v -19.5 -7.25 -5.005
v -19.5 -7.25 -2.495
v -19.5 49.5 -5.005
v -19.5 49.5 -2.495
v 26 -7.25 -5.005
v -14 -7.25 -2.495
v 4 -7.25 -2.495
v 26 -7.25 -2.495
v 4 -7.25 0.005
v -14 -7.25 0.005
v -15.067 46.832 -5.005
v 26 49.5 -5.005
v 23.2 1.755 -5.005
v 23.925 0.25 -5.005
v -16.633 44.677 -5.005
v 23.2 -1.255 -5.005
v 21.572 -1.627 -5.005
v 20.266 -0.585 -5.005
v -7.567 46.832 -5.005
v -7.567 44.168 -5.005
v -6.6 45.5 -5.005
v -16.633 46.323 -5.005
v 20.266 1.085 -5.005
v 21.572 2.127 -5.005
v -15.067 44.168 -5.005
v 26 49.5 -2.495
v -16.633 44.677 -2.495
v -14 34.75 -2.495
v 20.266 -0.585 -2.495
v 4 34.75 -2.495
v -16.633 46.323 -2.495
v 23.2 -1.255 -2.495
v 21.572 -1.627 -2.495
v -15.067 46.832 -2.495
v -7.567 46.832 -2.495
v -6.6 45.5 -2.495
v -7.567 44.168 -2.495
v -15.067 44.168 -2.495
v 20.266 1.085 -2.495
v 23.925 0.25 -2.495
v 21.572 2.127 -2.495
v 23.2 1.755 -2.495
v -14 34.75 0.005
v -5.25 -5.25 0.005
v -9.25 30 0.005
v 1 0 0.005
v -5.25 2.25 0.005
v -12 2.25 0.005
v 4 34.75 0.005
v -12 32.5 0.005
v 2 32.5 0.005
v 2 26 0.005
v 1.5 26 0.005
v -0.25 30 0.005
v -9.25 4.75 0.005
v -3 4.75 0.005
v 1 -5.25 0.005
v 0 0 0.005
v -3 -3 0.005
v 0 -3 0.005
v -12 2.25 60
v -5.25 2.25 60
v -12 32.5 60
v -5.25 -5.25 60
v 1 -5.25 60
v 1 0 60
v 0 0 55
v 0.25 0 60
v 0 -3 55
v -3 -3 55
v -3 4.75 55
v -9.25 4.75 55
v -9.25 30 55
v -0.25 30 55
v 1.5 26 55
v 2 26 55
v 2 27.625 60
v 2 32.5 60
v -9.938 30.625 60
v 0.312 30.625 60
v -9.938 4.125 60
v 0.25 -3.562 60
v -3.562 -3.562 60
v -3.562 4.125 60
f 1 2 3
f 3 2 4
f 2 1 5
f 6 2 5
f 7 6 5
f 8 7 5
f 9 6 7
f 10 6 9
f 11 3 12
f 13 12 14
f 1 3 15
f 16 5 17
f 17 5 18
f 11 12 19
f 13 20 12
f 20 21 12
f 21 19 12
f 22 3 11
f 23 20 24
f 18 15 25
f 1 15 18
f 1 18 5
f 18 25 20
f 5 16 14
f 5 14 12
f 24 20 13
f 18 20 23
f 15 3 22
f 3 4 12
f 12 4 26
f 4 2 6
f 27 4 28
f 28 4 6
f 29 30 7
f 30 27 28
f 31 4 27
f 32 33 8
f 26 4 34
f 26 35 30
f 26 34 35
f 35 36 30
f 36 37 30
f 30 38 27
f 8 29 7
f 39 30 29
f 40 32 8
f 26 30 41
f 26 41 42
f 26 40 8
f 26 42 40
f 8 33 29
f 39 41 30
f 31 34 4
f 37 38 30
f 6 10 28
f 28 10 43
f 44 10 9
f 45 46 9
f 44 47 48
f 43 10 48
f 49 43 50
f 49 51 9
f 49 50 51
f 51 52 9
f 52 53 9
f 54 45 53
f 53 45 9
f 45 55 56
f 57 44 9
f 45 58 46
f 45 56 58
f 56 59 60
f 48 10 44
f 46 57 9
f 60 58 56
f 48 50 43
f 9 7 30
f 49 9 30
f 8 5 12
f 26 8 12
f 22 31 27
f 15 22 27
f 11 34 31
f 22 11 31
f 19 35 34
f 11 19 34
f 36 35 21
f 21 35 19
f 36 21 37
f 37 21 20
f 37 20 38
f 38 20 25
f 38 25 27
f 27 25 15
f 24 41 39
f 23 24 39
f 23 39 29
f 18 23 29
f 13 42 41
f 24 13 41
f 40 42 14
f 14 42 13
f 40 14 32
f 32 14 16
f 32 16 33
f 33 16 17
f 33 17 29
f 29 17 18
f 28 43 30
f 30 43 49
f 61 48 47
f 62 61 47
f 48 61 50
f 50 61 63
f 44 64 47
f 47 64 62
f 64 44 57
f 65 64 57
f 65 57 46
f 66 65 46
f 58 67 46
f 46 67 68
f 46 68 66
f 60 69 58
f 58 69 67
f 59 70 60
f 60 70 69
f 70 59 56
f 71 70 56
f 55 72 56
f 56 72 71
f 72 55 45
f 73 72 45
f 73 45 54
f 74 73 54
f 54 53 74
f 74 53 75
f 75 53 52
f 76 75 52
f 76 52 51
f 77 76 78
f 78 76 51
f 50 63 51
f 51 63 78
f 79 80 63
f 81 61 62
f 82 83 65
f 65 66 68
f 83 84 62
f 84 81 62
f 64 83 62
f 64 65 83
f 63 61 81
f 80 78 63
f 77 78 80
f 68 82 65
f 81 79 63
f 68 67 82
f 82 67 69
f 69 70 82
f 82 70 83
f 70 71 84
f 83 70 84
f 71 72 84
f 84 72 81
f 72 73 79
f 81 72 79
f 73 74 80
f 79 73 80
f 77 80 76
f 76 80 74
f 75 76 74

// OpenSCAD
module railbase() {
	polygon(points=[[1,0],[1,-5.25],[-5.25,-5.25],[-5.25,2.25],[-12,2.25],[-12,32.5],[2,32.5],[2,26],[1.5,26],[-0.25,30],[-9.25,30],[-9.25,4.75],[-3,4.75],[-3,-3],[0,-3],[0,0]]);
}

module railext1() {
	linear_extrude(height=0.01)
	polygon(points=[[-3,2.25],[-12,2.25],[-12,32.5],[2,32.5],[2,26]]);
}

module railint1() {
	linear_extrude(height=0.01)
		polygon(points=[[2,26],[1.5,26],[-0.25,30],[-9.25,30],[-9.25,4.75],[-3,4.75]]);
}

module railext2() {
	linear_extrude(height=0.01)
	polygon(points=[[1,0],[1,-5.25],[-5.25,-5.25],[-5.25,4.75]]);
}

module railint2() {
	linear_extrude(height=0.01)
		polygon(points=[[-3,4.75],[-3,-3],[0,-3],[0,0]]);
}

module rail(rlength) {
	linear_extrude(height=rlength)
		railbase();
}

module railtaper(taperwid,offset) {
	hull() {
		translate([0,0,offset-taperwid]) railint1();
		translate([0,0,offset+taperwid]) railext1();
	}
	hull() {
		translate([0,0,offset-taperwid]) railint2();
		translate([0,0,offset+taperwid]) railext2();
	}
}

difference() {
	rail(60);
	railtaper(10,65);
}

translate([-5,13.75,-1.25]) cube(size=[18,42,2.51],center=true);

translate([3.25,21.125,-3.75]) difference(){
	cube(size=[45.5,56.75,2.51],center=true);
	hull(){
		translate([-18.75,24.375,-1]) cylinder(h=6,r=1.4,center=true);
		translate([-11.25,24.375,-1]) cylinder(h=6,r=1.4,center=true);
	}
	translate([18.75,-20.875,-1]) cylinder(h=6,r=3.85/2,center=true);
}
	
